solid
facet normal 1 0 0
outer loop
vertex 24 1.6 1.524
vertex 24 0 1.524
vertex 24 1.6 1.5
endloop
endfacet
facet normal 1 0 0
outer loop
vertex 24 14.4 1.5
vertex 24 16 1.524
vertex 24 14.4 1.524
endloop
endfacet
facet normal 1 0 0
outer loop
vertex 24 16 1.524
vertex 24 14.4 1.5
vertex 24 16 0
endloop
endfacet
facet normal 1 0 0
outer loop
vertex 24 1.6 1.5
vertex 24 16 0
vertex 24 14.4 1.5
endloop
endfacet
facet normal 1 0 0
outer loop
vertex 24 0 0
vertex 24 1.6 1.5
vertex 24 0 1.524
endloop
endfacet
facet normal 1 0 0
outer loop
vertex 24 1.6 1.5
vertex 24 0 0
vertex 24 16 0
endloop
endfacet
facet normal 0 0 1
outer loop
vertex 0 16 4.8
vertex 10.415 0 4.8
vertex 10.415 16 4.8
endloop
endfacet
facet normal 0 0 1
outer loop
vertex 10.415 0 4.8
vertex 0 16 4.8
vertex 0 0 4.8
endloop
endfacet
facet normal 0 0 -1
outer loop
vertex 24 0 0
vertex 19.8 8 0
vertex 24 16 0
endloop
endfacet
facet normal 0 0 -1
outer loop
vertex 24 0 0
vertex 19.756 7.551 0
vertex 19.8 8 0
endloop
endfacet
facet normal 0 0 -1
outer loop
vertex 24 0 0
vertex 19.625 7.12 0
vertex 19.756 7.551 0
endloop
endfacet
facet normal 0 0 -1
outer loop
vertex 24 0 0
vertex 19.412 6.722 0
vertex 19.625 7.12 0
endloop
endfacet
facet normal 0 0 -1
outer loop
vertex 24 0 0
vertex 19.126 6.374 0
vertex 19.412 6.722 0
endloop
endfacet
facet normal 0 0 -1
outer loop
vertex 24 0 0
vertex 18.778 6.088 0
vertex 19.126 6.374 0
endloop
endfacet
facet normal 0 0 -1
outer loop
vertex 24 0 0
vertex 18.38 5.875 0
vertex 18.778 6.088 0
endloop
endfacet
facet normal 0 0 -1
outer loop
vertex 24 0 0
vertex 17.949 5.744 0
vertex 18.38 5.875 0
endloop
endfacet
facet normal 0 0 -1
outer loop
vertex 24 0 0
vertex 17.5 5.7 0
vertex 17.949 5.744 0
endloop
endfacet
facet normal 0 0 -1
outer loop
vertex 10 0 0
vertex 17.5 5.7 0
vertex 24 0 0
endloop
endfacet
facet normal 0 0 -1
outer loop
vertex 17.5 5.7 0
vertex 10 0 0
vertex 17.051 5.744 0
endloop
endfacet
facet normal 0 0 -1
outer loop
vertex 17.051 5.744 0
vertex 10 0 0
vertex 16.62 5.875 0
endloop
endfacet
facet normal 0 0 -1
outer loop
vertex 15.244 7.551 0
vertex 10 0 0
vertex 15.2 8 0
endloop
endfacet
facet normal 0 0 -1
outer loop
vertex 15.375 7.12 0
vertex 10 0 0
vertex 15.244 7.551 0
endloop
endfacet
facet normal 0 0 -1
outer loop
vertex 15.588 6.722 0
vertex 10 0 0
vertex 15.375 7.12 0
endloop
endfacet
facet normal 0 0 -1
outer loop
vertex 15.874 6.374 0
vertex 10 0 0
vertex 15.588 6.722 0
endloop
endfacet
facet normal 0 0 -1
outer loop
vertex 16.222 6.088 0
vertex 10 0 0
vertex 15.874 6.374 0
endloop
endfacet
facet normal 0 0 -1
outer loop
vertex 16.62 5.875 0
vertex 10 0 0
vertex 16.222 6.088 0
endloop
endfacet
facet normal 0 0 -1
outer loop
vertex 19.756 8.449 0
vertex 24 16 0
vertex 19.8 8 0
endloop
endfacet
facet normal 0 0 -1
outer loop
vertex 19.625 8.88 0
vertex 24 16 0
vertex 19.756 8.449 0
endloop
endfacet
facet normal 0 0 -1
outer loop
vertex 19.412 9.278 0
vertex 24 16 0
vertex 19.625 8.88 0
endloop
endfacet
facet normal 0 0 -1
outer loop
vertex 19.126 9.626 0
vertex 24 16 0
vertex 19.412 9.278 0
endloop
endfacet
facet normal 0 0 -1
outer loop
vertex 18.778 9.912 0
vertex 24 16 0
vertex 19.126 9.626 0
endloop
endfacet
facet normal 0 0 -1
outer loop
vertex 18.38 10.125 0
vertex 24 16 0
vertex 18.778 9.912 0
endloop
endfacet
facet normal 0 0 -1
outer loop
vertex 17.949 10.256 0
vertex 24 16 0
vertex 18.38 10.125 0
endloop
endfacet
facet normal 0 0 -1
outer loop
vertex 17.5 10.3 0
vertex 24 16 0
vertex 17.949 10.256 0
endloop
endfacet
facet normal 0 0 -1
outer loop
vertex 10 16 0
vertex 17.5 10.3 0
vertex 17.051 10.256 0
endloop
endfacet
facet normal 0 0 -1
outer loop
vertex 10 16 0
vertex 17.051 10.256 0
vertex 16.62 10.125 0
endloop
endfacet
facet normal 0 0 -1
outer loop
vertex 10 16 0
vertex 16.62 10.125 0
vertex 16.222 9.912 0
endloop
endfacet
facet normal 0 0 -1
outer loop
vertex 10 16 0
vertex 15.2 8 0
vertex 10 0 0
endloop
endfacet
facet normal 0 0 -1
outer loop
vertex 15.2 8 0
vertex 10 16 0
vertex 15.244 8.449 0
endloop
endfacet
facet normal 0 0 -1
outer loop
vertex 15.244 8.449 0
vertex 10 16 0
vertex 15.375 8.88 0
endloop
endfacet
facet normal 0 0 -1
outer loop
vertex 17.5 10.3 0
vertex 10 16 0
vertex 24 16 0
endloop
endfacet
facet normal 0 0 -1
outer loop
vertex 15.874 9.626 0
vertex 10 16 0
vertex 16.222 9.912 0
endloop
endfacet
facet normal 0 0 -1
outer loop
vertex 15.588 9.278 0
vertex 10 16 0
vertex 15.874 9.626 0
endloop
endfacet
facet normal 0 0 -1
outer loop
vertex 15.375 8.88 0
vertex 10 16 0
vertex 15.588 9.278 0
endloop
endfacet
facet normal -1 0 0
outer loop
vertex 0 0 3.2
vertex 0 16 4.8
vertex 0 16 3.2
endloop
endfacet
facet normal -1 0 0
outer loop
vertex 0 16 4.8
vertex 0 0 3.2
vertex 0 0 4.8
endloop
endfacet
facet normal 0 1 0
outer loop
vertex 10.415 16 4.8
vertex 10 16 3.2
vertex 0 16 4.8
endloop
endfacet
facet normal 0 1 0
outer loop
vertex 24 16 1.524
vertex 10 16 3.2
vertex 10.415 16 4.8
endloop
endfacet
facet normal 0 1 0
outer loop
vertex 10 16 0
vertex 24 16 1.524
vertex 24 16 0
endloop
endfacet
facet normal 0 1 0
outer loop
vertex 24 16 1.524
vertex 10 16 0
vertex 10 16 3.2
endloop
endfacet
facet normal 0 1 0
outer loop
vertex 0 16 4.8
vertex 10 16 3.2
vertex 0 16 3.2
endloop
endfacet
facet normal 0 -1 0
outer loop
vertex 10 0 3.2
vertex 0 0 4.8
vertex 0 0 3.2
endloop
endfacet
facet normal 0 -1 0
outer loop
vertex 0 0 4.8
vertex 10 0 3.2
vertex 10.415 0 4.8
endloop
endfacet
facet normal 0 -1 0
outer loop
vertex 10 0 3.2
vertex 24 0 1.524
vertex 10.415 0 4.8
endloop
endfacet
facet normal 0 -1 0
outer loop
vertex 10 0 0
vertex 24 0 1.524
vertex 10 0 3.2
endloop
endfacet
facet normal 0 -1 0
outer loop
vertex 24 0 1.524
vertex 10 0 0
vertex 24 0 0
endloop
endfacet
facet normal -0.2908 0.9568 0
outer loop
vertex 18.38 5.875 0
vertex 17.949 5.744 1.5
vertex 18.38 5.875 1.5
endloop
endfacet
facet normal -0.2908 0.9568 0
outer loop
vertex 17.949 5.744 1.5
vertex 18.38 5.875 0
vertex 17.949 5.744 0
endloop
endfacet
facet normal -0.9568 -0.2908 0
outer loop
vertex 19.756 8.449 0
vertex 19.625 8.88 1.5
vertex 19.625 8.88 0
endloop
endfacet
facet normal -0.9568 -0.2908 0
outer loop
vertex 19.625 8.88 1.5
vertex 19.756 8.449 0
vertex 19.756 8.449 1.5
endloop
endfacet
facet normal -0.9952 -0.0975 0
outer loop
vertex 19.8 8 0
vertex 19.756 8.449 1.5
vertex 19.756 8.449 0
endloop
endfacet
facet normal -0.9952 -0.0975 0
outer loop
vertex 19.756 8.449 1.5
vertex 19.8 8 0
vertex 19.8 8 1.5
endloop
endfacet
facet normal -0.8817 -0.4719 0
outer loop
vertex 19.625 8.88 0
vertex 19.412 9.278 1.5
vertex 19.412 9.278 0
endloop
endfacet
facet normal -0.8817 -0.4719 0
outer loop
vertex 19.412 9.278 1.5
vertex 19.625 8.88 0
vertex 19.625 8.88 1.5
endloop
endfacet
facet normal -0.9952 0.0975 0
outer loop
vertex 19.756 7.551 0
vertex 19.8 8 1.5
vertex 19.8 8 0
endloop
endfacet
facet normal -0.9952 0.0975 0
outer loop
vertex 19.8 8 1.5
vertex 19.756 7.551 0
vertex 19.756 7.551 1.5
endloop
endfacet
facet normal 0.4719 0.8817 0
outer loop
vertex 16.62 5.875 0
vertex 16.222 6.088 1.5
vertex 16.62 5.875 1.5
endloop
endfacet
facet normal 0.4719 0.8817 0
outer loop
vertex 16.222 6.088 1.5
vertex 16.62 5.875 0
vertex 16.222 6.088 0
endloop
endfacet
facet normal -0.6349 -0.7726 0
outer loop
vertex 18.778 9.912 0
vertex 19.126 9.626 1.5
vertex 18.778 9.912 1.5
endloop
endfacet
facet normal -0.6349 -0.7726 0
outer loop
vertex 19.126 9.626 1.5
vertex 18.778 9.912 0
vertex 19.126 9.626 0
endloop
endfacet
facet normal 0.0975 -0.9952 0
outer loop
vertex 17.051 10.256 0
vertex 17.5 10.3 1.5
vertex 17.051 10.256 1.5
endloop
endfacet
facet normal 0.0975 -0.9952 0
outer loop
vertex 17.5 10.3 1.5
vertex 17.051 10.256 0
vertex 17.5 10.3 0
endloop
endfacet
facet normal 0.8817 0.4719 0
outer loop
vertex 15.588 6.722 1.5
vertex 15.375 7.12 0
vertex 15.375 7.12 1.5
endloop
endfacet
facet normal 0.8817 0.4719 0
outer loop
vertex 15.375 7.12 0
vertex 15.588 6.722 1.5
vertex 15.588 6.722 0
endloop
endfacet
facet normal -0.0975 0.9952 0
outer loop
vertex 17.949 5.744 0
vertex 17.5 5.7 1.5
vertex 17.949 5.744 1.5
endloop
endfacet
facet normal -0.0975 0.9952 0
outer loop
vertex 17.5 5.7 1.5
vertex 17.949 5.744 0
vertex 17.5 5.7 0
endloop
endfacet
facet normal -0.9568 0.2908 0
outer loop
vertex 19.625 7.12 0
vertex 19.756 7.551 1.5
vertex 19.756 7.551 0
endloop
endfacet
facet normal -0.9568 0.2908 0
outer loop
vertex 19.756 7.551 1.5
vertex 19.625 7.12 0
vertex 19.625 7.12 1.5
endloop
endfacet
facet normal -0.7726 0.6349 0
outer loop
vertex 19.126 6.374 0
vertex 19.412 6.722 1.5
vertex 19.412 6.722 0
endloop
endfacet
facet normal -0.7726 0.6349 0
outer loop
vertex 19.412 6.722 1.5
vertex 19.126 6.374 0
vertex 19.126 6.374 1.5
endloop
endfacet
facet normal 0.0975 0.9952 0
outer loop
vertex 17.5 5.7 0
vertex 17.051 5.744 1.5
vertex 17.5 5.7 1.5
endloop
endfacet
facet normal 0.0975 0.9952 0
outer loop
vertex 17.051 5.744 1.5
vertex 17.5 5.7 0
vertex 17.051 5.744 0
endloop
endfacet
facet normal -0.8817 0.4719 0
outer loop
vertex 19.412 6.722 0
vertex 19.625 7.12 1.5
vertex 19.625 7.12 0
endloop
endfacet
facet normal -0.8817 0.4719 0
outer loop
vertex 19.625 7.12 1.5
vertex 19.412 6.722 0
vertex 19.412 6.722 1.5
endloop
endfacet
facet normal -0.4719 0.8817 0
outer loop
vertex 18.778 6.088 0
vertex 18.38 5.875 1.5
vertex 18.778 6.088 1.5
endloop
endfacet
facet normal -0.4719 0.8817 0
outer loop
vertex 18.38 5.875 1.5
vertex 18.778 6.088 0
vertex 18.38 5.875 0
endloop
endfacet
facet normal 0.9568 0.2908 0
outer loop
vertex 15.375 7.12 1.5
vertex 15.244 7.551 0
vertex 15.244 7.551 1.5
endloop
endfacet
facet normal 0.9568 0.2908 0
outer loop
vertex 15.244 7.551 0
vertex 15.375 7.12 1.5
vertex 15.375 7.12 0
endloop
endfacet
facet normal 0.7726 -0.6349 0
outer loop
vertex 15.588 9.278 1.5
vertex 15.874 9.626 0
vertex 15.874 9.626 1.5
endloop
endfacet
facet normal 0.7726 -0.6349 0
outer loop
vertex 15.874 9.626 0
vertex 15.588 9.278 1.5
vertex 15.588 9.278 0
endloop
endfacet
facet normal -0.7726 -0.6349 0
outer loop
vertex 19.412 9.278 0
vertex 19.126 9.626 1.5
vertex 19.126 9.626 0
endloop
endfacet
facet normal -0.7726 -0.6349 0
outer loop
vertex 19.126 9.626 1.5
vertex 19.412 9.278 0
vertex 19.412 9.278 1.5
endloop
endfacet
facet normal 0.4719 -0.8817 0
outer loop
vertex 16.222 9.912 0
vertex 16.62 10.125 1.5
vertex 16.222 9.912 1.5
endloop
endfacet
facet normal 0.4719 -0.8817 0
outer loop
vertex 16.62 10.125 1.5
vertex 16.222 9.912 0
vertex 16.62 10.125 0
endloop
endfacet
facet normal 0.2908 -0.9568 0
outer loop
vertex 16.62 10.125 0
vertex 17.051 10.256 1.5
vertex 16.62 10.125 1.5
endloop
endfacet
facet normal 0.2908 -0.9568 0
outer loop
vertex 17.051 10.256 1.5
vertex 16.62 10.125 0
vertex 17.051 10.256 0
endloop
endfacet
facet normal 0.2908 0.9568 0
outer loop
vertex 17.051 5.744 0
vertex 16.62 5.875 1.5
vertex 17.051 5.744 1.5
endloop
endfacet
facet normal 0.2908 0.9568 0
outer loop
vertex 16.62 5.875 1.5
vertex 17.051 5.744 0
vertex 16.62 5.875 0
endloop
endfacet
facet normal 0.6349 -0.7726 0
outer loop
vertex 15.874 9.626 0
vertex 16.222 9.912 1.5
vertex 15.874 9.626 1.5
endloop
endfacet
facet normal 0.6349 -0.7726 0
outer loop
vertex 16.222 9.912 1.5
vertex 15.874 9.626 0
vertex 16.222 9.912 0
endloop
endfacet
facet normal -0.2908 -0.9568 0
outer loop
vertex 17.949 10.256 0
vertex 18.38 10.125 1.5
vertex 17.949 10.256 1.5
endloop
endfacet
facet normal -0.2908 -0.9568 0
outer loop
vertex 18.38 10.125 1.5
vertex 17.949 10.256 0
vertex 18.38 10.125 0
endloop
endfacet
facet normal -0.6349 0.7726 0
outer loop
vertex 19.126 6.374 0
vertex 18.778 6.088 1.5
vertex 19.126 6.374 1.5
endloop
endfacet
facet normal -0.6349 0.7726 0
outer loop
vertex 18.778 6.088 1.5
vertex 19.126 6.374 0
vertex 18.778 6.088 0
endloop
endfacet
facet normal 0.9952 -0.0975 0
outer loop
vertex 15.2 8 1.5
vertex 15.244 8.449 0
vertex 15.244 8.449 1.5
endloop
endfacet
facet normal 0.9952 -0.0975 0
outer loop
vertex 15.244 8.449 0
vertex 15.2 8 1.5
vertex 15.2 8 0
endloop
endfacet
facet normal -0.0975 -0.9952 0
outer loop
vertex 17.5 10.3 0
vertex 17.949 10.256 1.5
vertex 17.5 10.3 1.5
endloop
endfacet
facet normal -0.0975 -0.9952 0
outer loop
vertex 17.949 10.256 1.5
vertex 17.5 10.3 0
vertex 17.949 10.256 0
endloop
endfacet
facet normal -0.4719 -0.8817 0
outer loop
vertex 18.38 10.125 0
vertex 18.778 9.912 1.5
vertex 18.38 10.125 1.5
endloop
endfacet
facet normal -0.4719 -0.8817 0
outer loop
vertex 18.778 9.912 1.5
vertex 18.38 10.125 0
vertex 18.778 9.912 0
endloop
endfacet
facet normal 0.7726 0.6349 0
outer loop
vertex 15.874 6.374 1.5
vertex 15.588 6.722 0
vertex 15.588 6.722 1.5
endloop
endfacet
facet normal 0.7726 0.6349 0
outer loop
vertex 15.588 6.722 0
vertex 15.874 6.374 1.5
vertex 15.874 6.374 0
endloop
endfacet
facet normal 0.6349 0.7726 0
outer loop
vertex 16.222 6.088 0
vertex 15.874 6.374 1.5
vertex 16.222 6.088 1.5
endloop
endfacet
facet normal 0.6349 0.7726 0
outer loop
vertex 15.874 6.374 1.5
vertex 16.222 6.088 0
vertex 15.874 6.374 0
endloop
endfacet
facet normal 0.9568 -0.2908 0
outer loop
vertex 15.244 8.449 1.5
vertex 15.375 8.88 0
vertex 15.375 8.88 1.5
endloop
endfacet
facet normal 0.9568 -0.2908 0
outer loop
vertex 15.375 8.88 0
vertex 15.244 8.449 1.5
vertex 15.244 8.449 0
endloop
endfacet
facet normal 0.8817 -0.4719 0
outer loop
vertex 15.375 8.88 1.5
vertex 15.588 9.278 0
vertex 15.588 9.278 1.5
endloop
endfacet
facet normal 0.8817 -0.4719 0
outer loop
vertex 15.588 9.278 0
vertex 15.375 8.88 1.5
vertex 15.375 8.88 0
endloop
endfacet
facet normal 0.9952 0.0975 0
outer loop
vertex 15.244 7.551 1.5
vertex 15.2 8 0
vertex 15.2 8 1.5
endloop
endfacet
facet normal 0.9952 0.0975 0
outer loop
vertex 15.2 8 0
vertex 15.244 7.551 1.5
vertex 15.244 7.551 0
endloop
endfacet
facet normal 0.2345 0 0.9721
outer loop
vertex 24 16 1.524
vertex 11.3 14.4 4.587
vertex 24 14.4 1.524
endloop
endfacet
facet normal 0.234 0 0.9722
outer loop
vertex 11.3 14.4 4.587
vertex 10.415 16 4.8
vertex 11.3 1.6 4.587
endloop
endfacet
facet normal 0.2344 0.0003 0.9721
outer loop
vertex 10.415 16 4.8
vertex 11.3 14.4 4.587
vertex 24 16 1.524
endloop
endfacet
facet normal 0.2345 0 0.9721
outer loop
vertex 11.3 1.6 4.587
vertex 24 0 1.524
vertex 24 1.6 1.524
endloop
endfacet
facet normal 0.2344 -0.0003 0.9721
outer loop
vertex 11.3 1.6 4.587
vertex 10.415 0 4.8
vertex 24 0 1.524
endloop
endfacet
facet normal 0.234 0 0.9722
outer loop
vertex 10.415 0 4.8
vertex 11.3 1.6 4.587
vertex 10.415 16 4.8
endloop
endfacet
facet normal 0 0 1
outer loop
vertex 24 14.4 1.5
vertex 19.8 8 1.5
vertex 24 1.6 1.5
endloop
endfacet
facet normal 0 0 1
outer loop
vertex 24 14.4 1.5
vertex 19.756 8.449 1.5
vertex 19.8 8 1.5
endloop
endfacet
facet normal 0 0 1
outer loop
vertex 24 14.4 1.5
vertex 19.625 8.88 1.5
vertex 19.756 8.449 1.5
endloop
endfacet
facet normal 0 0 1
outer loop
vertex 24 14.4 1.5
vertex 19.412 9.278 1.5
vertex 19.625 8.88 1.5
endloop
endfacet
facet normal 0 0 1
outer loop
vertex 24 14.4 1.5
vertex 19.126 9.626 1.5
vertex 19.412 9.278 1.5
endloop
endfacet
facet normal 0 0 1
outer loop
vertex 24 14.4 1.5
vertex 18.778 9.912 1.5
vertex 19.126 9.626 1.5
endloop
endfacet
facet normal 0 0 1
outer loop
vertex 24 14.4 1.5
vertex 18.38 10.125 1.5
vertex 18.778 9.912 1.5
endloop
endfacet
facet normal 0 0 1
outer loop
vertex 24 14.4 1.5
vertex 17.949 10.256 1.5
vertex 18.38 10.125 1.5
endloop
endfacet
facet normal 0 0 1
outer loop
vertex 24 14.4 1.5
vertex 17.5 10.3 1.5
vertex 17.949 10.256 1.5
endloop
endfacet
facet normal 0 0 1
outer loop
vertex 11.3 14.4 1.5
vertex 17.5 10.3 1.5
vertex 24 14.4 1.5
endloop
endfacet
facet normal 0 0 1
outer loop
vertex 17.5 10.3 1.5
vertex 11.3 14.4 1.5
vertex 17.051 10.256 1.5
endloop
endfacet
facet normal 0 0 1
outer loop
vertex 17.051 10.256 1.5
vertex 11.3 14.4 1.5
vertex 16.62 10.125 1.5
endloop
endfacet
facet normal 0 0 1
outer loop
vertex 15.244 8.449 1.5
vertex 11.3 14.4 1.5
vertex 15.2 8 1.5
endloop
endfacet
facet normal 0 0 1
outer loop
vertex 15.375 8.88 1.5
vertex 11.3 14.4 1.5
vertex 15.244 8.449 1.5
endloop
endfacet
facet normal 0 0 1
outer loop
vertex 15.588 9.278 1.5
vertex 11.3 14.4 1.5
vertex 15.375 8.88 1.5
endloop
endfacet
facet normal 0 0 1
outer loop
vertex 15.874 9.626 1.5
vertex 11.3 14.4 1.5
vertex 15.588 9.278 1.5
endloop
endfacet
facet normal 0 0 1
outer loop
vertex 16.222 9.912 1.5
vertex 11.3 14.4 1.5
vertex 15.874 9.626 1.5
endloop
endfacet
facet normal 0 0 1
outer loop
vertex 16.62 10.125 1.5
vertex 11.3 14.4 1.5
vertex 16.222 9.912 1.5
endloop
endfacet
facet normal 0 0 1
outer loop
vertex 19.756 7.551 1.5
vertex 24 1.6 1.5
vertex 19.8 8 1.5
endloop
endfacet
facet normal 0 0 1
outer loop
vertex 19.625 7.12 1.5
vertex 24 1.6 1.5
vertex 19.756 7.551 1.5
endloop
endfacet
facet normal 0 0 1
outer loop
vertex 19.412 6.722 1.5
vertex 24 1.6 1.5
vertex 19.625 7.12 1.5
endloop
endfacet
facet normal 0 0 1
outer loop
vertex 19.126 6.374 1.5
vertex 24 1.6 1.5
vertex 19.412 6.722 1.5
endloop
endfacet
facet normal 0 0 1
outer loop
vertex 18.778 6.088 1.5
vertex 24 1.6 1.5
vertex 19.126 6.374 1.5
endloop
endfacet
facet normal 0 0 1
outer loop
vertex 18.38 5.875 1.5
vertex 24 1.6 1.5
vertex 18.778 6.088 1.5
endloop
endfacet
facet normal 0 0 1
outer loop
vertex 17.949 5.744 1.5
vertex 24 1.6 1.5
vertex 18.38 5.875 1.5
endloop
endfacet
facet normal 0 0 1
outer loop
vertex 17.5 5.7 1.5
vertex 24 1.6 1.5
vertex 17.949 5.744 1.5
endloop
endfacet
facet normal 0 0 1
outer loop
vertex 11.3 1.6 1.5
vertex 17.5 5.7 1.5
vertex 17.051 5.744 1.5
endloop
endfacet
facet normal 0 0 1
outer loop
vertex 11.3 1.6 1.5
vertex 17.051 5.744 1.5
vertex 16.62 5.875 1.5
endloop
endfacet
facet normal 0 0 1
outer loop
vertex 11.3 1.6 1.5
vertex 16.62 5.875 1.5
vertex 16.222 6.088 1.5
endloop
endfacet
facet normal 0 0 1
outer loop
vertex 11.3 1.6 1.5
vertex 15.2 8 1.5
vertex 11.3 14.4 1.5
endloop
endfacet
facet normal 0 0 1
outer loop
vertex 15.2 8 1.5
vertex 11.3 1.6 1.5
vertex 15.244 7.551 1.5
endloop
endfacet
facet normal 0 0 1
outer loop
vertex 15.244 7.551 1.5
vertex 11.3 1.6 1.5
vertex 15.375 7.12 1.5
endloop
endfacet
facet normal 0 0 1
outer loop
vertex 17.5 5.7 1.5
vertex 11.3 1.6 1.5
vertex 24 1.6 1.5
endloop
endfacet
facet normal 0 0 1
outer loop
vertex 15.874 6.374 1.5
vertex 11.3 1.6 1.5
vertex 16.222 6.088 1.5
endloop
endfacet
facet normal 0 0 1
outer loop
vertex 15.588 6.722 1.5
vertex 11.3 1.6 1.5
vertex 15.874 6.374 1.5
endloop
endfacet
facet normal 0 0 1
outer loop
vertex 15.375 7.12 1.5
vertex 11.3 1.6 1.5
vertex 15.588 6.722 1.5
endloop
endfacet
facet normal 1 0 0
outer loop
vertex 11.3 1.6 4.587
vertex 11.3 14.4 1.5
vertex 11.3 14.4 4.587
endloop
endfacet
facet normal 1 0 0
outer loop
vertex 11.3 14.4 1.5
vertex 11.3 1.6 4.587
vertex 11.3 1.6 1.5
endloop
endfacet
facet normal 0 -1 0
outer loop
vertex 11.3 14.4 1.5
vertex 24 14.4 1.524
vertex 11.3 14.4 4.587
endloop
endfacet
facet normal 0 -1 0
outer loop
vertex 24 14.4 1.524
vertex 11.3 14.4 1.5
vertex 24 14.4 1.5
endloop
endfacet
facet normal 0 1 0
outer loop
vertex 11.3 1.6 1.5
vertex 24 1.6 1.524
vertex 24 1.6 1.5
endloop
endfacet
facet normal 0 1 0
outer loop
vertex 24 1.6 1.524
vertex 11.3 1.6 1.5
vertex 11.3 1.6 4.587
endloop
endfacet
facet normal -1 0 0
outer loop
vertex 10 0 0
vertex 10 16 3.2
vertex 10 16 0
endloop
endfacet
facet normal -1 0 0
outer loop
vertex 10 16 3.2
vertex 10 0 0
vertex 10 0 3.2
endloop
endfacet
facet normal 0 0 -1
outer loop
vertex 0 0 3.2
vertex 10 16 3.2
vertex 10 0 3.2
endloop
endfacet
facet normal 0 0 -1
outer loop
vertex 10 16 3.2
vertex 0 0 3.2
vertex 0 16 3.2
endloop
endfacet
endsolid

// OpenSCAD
//
// monitor cover mounting bracket
//

$fn=32;

module bracket() {
     difference() {
	  cube( [24, 16, 4.8]);
	  translate( [24-6.5, 16/2, -0.1])
	       cylinder(h=5, d=4.6);
	  wedge();
	  cut();
	  step();
     }
}

module wedge() {
     rotate( [90, 0, 0]) {
	  translate( [0, 0, -17])
	  linear_extrude( height=18 ) {
	       polygon( [ [10, 4.9], [24.1, 1.5], [24.1, 4.9]] );
	  }
     }
}

module cut() {
     translate( [11.3, 1.6, 1.5])
	  cube( [13, 12.8, 4]);
}

module step() {
     translate( [-0.1, -0.1, -0.1])
	  cube( [10.1, 17, 3.3]);
}

bracket();
